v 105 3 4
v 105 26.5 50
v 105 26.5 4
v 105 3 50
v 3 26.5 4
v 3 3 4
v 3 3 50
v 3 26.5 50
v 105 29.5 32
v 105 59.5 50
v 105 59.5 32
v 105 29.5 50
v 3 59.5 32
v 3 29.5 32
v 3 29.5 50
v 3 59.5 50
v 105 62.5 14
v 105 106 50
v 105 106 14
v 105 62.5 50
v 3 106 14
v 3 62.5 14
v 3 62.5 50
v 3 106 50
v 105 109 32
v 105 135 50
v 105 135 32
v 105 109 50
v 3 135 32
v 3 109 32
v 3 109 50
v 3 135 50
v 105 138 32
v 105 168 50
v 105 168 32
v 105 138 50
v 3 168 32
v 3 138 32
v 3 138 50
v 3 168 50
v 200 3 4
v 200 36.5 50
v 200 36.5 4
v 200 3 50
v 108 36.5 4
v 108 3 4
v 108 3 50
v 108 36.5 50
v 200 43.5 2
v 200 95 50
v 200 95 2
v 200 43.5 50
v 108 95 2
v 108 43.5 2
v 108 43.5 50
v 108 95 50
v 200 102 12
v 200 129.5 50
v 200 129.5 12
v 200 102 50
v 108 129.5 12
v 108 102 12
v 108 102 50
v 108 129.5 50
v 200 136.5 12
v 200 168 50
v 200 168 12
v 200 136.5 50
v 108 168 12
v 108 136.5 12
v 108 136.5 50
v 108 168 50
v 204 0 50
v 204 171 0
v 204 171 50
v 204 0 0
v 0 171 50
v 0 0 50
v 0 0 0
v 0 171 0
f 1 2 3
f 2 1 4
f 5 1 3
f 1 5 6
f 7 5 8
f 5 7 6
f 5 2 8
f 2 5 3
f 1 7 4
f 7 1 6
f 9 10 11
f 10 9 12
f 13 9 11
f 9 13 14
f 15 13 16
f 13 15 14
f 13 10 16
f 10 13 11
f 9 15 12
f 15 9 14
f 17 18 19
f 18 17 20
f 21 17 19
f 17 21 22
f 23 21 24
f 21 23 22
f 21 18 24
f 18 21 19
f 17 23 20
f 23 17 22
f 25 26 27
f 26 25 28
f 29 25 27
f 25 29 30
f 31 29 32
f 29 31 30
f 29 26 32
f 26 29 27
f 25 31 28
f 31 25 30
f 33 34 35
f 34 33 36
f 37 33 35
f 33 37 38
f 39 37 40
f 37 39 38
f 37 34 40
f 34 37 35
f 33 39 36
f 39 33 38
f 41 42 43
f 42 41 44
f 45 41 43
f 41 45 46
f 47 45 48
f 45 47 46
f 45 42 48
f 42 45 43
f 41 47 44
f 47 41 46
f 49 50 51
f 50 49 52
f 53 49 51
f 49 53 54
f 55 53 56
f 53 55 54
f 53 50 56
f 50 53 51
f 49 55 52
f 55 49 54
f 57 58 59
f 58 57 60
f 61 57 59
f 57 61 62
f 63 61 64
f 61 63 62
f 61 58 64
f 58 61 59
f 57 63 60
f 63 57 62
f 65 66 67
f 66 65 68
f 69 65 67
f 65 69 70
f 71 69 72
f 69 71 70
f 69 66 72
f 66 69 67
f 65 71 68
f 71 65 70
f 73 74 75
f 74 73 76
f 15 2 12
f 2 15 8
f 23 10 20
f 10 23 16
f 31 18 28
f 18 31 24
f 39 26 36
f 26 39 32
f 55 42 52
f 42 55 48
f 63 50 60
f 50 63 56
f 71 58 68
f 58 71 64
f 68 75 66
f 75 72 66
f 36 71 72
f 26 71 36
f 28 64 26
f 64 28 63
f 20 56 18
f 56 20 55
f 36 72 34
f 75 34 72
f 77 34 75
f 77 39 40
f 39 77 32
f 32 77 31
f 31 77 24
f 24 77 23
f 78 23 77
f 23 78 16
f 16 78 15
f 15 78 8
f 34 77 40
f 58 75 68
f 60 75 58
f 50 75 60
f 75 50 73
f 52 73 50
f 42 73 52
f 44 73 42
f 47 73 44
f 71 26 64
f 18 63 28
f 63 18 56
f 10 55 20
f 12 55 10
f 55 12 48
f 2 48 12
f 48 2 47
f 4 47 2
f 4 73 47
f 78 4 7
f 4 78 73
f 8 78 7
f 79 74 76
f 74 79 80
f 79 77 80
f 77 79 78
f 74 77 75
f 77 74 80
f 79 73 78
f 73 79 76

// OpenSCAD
altura_caixa = 72;

x = 204;
y = 171;
z = 50;

folga = 2;
div = 3;
curr_y = 0;

module token_holder_slot(vector, texto = "") {
  x = vector[0];
  y = vector[1];
  z = vector[2];

  myx = x + folga;
  myy = z + folga + 1; //1 from the lettering
  myz = y + 1; // 1 from lettering

  translate([0, 0, altura_caixa - y]) {
    cube([myx, myy, myz]);
    /*translate([2, 0,- 0.9])
      label_x1(texto=texto);*/
  }
}

module label_x1(texto = "Texto") {
	// Label
	font = "Liberation Sans";
	color([0, 0.2, 0.3])
    rotate([0, 0, 90])
			linear_extrude(height = 1) {
				text(texto,
					font = font,
					size = 6,
					spacing = 1,
					halign="left",
					valign="top" );
			}
}

module base() {

  difference() {
    cube([x, y, z]);
    translate([div, 0, 0]) {

      // Library
      y1 = div;
      dim1 = [100, 68, 20.5];
      translate([0, y1, 0])
        token_holder_slot(dim1, "L");

      // University
      y2 = y1 + div + folga + 1 + dim1[2];
      dim2 = [100, 40, 27];
      translate([0, y2, 0])
        token_holder_slot(dim2, "U");

      // Auction House
      y3 = y2 + div + folga + 1 + dim2[2];
      dim3 = [100, 58, 40.5];
      translate([0, y3, 0])
        token_holder_slot(dim3, "AH");

      // Sunken Galleon
      y4 = y3 + div + folga + 1 + dim3[2];
      dim4 = [100, 40, 23];
      translate([0, y4, 0])
        token_holder_slot(dim4, "SG");

      // Trasure Tower
      y5 = y4 + div + folga + 1 + dim4[2];
      dim5 = [100, 40, 27];
      translate([0, y5, 0])
        token_holder_slot(dim5, "TT");

    }

    translate([div * 2 + 100 + folga, 0, 0]) {
      // Archives
      y1 = div;
      dim1 = [90, 68, 30.5];
      translate([0, y1, 0])
        token_holder_slot(dim1, "A");

      // Treasure Hunter's Guild
      y2 = y1 + div + folga + 1 + dim1[2] + 4;
      dim2 = [90, 70, 48.5];
      translate([0, y2, 0])
        token_holder_slot(dim2, "THG");

      // Illuminati
      y3 = y2 + div + folga + 1 + dim2[2] + 4;
      dim3 = [90, 60, 24.5];
      translate([0, y3, 0])
        token_holder_slot(dim3, "I");

      // Hidden Temple
      y4 = y3 + div + folga + 1 + dim3[2] + 4;
      dim4 = [90, 60, 28.5];
      translate([0, y4, 0])
        token_holder_slot(dim4, "HT");

    }
  }
}
intersection() {
  /*translate([0,0,30.01])*/
    /*cube([300,300,2]);*/
  base();
}
